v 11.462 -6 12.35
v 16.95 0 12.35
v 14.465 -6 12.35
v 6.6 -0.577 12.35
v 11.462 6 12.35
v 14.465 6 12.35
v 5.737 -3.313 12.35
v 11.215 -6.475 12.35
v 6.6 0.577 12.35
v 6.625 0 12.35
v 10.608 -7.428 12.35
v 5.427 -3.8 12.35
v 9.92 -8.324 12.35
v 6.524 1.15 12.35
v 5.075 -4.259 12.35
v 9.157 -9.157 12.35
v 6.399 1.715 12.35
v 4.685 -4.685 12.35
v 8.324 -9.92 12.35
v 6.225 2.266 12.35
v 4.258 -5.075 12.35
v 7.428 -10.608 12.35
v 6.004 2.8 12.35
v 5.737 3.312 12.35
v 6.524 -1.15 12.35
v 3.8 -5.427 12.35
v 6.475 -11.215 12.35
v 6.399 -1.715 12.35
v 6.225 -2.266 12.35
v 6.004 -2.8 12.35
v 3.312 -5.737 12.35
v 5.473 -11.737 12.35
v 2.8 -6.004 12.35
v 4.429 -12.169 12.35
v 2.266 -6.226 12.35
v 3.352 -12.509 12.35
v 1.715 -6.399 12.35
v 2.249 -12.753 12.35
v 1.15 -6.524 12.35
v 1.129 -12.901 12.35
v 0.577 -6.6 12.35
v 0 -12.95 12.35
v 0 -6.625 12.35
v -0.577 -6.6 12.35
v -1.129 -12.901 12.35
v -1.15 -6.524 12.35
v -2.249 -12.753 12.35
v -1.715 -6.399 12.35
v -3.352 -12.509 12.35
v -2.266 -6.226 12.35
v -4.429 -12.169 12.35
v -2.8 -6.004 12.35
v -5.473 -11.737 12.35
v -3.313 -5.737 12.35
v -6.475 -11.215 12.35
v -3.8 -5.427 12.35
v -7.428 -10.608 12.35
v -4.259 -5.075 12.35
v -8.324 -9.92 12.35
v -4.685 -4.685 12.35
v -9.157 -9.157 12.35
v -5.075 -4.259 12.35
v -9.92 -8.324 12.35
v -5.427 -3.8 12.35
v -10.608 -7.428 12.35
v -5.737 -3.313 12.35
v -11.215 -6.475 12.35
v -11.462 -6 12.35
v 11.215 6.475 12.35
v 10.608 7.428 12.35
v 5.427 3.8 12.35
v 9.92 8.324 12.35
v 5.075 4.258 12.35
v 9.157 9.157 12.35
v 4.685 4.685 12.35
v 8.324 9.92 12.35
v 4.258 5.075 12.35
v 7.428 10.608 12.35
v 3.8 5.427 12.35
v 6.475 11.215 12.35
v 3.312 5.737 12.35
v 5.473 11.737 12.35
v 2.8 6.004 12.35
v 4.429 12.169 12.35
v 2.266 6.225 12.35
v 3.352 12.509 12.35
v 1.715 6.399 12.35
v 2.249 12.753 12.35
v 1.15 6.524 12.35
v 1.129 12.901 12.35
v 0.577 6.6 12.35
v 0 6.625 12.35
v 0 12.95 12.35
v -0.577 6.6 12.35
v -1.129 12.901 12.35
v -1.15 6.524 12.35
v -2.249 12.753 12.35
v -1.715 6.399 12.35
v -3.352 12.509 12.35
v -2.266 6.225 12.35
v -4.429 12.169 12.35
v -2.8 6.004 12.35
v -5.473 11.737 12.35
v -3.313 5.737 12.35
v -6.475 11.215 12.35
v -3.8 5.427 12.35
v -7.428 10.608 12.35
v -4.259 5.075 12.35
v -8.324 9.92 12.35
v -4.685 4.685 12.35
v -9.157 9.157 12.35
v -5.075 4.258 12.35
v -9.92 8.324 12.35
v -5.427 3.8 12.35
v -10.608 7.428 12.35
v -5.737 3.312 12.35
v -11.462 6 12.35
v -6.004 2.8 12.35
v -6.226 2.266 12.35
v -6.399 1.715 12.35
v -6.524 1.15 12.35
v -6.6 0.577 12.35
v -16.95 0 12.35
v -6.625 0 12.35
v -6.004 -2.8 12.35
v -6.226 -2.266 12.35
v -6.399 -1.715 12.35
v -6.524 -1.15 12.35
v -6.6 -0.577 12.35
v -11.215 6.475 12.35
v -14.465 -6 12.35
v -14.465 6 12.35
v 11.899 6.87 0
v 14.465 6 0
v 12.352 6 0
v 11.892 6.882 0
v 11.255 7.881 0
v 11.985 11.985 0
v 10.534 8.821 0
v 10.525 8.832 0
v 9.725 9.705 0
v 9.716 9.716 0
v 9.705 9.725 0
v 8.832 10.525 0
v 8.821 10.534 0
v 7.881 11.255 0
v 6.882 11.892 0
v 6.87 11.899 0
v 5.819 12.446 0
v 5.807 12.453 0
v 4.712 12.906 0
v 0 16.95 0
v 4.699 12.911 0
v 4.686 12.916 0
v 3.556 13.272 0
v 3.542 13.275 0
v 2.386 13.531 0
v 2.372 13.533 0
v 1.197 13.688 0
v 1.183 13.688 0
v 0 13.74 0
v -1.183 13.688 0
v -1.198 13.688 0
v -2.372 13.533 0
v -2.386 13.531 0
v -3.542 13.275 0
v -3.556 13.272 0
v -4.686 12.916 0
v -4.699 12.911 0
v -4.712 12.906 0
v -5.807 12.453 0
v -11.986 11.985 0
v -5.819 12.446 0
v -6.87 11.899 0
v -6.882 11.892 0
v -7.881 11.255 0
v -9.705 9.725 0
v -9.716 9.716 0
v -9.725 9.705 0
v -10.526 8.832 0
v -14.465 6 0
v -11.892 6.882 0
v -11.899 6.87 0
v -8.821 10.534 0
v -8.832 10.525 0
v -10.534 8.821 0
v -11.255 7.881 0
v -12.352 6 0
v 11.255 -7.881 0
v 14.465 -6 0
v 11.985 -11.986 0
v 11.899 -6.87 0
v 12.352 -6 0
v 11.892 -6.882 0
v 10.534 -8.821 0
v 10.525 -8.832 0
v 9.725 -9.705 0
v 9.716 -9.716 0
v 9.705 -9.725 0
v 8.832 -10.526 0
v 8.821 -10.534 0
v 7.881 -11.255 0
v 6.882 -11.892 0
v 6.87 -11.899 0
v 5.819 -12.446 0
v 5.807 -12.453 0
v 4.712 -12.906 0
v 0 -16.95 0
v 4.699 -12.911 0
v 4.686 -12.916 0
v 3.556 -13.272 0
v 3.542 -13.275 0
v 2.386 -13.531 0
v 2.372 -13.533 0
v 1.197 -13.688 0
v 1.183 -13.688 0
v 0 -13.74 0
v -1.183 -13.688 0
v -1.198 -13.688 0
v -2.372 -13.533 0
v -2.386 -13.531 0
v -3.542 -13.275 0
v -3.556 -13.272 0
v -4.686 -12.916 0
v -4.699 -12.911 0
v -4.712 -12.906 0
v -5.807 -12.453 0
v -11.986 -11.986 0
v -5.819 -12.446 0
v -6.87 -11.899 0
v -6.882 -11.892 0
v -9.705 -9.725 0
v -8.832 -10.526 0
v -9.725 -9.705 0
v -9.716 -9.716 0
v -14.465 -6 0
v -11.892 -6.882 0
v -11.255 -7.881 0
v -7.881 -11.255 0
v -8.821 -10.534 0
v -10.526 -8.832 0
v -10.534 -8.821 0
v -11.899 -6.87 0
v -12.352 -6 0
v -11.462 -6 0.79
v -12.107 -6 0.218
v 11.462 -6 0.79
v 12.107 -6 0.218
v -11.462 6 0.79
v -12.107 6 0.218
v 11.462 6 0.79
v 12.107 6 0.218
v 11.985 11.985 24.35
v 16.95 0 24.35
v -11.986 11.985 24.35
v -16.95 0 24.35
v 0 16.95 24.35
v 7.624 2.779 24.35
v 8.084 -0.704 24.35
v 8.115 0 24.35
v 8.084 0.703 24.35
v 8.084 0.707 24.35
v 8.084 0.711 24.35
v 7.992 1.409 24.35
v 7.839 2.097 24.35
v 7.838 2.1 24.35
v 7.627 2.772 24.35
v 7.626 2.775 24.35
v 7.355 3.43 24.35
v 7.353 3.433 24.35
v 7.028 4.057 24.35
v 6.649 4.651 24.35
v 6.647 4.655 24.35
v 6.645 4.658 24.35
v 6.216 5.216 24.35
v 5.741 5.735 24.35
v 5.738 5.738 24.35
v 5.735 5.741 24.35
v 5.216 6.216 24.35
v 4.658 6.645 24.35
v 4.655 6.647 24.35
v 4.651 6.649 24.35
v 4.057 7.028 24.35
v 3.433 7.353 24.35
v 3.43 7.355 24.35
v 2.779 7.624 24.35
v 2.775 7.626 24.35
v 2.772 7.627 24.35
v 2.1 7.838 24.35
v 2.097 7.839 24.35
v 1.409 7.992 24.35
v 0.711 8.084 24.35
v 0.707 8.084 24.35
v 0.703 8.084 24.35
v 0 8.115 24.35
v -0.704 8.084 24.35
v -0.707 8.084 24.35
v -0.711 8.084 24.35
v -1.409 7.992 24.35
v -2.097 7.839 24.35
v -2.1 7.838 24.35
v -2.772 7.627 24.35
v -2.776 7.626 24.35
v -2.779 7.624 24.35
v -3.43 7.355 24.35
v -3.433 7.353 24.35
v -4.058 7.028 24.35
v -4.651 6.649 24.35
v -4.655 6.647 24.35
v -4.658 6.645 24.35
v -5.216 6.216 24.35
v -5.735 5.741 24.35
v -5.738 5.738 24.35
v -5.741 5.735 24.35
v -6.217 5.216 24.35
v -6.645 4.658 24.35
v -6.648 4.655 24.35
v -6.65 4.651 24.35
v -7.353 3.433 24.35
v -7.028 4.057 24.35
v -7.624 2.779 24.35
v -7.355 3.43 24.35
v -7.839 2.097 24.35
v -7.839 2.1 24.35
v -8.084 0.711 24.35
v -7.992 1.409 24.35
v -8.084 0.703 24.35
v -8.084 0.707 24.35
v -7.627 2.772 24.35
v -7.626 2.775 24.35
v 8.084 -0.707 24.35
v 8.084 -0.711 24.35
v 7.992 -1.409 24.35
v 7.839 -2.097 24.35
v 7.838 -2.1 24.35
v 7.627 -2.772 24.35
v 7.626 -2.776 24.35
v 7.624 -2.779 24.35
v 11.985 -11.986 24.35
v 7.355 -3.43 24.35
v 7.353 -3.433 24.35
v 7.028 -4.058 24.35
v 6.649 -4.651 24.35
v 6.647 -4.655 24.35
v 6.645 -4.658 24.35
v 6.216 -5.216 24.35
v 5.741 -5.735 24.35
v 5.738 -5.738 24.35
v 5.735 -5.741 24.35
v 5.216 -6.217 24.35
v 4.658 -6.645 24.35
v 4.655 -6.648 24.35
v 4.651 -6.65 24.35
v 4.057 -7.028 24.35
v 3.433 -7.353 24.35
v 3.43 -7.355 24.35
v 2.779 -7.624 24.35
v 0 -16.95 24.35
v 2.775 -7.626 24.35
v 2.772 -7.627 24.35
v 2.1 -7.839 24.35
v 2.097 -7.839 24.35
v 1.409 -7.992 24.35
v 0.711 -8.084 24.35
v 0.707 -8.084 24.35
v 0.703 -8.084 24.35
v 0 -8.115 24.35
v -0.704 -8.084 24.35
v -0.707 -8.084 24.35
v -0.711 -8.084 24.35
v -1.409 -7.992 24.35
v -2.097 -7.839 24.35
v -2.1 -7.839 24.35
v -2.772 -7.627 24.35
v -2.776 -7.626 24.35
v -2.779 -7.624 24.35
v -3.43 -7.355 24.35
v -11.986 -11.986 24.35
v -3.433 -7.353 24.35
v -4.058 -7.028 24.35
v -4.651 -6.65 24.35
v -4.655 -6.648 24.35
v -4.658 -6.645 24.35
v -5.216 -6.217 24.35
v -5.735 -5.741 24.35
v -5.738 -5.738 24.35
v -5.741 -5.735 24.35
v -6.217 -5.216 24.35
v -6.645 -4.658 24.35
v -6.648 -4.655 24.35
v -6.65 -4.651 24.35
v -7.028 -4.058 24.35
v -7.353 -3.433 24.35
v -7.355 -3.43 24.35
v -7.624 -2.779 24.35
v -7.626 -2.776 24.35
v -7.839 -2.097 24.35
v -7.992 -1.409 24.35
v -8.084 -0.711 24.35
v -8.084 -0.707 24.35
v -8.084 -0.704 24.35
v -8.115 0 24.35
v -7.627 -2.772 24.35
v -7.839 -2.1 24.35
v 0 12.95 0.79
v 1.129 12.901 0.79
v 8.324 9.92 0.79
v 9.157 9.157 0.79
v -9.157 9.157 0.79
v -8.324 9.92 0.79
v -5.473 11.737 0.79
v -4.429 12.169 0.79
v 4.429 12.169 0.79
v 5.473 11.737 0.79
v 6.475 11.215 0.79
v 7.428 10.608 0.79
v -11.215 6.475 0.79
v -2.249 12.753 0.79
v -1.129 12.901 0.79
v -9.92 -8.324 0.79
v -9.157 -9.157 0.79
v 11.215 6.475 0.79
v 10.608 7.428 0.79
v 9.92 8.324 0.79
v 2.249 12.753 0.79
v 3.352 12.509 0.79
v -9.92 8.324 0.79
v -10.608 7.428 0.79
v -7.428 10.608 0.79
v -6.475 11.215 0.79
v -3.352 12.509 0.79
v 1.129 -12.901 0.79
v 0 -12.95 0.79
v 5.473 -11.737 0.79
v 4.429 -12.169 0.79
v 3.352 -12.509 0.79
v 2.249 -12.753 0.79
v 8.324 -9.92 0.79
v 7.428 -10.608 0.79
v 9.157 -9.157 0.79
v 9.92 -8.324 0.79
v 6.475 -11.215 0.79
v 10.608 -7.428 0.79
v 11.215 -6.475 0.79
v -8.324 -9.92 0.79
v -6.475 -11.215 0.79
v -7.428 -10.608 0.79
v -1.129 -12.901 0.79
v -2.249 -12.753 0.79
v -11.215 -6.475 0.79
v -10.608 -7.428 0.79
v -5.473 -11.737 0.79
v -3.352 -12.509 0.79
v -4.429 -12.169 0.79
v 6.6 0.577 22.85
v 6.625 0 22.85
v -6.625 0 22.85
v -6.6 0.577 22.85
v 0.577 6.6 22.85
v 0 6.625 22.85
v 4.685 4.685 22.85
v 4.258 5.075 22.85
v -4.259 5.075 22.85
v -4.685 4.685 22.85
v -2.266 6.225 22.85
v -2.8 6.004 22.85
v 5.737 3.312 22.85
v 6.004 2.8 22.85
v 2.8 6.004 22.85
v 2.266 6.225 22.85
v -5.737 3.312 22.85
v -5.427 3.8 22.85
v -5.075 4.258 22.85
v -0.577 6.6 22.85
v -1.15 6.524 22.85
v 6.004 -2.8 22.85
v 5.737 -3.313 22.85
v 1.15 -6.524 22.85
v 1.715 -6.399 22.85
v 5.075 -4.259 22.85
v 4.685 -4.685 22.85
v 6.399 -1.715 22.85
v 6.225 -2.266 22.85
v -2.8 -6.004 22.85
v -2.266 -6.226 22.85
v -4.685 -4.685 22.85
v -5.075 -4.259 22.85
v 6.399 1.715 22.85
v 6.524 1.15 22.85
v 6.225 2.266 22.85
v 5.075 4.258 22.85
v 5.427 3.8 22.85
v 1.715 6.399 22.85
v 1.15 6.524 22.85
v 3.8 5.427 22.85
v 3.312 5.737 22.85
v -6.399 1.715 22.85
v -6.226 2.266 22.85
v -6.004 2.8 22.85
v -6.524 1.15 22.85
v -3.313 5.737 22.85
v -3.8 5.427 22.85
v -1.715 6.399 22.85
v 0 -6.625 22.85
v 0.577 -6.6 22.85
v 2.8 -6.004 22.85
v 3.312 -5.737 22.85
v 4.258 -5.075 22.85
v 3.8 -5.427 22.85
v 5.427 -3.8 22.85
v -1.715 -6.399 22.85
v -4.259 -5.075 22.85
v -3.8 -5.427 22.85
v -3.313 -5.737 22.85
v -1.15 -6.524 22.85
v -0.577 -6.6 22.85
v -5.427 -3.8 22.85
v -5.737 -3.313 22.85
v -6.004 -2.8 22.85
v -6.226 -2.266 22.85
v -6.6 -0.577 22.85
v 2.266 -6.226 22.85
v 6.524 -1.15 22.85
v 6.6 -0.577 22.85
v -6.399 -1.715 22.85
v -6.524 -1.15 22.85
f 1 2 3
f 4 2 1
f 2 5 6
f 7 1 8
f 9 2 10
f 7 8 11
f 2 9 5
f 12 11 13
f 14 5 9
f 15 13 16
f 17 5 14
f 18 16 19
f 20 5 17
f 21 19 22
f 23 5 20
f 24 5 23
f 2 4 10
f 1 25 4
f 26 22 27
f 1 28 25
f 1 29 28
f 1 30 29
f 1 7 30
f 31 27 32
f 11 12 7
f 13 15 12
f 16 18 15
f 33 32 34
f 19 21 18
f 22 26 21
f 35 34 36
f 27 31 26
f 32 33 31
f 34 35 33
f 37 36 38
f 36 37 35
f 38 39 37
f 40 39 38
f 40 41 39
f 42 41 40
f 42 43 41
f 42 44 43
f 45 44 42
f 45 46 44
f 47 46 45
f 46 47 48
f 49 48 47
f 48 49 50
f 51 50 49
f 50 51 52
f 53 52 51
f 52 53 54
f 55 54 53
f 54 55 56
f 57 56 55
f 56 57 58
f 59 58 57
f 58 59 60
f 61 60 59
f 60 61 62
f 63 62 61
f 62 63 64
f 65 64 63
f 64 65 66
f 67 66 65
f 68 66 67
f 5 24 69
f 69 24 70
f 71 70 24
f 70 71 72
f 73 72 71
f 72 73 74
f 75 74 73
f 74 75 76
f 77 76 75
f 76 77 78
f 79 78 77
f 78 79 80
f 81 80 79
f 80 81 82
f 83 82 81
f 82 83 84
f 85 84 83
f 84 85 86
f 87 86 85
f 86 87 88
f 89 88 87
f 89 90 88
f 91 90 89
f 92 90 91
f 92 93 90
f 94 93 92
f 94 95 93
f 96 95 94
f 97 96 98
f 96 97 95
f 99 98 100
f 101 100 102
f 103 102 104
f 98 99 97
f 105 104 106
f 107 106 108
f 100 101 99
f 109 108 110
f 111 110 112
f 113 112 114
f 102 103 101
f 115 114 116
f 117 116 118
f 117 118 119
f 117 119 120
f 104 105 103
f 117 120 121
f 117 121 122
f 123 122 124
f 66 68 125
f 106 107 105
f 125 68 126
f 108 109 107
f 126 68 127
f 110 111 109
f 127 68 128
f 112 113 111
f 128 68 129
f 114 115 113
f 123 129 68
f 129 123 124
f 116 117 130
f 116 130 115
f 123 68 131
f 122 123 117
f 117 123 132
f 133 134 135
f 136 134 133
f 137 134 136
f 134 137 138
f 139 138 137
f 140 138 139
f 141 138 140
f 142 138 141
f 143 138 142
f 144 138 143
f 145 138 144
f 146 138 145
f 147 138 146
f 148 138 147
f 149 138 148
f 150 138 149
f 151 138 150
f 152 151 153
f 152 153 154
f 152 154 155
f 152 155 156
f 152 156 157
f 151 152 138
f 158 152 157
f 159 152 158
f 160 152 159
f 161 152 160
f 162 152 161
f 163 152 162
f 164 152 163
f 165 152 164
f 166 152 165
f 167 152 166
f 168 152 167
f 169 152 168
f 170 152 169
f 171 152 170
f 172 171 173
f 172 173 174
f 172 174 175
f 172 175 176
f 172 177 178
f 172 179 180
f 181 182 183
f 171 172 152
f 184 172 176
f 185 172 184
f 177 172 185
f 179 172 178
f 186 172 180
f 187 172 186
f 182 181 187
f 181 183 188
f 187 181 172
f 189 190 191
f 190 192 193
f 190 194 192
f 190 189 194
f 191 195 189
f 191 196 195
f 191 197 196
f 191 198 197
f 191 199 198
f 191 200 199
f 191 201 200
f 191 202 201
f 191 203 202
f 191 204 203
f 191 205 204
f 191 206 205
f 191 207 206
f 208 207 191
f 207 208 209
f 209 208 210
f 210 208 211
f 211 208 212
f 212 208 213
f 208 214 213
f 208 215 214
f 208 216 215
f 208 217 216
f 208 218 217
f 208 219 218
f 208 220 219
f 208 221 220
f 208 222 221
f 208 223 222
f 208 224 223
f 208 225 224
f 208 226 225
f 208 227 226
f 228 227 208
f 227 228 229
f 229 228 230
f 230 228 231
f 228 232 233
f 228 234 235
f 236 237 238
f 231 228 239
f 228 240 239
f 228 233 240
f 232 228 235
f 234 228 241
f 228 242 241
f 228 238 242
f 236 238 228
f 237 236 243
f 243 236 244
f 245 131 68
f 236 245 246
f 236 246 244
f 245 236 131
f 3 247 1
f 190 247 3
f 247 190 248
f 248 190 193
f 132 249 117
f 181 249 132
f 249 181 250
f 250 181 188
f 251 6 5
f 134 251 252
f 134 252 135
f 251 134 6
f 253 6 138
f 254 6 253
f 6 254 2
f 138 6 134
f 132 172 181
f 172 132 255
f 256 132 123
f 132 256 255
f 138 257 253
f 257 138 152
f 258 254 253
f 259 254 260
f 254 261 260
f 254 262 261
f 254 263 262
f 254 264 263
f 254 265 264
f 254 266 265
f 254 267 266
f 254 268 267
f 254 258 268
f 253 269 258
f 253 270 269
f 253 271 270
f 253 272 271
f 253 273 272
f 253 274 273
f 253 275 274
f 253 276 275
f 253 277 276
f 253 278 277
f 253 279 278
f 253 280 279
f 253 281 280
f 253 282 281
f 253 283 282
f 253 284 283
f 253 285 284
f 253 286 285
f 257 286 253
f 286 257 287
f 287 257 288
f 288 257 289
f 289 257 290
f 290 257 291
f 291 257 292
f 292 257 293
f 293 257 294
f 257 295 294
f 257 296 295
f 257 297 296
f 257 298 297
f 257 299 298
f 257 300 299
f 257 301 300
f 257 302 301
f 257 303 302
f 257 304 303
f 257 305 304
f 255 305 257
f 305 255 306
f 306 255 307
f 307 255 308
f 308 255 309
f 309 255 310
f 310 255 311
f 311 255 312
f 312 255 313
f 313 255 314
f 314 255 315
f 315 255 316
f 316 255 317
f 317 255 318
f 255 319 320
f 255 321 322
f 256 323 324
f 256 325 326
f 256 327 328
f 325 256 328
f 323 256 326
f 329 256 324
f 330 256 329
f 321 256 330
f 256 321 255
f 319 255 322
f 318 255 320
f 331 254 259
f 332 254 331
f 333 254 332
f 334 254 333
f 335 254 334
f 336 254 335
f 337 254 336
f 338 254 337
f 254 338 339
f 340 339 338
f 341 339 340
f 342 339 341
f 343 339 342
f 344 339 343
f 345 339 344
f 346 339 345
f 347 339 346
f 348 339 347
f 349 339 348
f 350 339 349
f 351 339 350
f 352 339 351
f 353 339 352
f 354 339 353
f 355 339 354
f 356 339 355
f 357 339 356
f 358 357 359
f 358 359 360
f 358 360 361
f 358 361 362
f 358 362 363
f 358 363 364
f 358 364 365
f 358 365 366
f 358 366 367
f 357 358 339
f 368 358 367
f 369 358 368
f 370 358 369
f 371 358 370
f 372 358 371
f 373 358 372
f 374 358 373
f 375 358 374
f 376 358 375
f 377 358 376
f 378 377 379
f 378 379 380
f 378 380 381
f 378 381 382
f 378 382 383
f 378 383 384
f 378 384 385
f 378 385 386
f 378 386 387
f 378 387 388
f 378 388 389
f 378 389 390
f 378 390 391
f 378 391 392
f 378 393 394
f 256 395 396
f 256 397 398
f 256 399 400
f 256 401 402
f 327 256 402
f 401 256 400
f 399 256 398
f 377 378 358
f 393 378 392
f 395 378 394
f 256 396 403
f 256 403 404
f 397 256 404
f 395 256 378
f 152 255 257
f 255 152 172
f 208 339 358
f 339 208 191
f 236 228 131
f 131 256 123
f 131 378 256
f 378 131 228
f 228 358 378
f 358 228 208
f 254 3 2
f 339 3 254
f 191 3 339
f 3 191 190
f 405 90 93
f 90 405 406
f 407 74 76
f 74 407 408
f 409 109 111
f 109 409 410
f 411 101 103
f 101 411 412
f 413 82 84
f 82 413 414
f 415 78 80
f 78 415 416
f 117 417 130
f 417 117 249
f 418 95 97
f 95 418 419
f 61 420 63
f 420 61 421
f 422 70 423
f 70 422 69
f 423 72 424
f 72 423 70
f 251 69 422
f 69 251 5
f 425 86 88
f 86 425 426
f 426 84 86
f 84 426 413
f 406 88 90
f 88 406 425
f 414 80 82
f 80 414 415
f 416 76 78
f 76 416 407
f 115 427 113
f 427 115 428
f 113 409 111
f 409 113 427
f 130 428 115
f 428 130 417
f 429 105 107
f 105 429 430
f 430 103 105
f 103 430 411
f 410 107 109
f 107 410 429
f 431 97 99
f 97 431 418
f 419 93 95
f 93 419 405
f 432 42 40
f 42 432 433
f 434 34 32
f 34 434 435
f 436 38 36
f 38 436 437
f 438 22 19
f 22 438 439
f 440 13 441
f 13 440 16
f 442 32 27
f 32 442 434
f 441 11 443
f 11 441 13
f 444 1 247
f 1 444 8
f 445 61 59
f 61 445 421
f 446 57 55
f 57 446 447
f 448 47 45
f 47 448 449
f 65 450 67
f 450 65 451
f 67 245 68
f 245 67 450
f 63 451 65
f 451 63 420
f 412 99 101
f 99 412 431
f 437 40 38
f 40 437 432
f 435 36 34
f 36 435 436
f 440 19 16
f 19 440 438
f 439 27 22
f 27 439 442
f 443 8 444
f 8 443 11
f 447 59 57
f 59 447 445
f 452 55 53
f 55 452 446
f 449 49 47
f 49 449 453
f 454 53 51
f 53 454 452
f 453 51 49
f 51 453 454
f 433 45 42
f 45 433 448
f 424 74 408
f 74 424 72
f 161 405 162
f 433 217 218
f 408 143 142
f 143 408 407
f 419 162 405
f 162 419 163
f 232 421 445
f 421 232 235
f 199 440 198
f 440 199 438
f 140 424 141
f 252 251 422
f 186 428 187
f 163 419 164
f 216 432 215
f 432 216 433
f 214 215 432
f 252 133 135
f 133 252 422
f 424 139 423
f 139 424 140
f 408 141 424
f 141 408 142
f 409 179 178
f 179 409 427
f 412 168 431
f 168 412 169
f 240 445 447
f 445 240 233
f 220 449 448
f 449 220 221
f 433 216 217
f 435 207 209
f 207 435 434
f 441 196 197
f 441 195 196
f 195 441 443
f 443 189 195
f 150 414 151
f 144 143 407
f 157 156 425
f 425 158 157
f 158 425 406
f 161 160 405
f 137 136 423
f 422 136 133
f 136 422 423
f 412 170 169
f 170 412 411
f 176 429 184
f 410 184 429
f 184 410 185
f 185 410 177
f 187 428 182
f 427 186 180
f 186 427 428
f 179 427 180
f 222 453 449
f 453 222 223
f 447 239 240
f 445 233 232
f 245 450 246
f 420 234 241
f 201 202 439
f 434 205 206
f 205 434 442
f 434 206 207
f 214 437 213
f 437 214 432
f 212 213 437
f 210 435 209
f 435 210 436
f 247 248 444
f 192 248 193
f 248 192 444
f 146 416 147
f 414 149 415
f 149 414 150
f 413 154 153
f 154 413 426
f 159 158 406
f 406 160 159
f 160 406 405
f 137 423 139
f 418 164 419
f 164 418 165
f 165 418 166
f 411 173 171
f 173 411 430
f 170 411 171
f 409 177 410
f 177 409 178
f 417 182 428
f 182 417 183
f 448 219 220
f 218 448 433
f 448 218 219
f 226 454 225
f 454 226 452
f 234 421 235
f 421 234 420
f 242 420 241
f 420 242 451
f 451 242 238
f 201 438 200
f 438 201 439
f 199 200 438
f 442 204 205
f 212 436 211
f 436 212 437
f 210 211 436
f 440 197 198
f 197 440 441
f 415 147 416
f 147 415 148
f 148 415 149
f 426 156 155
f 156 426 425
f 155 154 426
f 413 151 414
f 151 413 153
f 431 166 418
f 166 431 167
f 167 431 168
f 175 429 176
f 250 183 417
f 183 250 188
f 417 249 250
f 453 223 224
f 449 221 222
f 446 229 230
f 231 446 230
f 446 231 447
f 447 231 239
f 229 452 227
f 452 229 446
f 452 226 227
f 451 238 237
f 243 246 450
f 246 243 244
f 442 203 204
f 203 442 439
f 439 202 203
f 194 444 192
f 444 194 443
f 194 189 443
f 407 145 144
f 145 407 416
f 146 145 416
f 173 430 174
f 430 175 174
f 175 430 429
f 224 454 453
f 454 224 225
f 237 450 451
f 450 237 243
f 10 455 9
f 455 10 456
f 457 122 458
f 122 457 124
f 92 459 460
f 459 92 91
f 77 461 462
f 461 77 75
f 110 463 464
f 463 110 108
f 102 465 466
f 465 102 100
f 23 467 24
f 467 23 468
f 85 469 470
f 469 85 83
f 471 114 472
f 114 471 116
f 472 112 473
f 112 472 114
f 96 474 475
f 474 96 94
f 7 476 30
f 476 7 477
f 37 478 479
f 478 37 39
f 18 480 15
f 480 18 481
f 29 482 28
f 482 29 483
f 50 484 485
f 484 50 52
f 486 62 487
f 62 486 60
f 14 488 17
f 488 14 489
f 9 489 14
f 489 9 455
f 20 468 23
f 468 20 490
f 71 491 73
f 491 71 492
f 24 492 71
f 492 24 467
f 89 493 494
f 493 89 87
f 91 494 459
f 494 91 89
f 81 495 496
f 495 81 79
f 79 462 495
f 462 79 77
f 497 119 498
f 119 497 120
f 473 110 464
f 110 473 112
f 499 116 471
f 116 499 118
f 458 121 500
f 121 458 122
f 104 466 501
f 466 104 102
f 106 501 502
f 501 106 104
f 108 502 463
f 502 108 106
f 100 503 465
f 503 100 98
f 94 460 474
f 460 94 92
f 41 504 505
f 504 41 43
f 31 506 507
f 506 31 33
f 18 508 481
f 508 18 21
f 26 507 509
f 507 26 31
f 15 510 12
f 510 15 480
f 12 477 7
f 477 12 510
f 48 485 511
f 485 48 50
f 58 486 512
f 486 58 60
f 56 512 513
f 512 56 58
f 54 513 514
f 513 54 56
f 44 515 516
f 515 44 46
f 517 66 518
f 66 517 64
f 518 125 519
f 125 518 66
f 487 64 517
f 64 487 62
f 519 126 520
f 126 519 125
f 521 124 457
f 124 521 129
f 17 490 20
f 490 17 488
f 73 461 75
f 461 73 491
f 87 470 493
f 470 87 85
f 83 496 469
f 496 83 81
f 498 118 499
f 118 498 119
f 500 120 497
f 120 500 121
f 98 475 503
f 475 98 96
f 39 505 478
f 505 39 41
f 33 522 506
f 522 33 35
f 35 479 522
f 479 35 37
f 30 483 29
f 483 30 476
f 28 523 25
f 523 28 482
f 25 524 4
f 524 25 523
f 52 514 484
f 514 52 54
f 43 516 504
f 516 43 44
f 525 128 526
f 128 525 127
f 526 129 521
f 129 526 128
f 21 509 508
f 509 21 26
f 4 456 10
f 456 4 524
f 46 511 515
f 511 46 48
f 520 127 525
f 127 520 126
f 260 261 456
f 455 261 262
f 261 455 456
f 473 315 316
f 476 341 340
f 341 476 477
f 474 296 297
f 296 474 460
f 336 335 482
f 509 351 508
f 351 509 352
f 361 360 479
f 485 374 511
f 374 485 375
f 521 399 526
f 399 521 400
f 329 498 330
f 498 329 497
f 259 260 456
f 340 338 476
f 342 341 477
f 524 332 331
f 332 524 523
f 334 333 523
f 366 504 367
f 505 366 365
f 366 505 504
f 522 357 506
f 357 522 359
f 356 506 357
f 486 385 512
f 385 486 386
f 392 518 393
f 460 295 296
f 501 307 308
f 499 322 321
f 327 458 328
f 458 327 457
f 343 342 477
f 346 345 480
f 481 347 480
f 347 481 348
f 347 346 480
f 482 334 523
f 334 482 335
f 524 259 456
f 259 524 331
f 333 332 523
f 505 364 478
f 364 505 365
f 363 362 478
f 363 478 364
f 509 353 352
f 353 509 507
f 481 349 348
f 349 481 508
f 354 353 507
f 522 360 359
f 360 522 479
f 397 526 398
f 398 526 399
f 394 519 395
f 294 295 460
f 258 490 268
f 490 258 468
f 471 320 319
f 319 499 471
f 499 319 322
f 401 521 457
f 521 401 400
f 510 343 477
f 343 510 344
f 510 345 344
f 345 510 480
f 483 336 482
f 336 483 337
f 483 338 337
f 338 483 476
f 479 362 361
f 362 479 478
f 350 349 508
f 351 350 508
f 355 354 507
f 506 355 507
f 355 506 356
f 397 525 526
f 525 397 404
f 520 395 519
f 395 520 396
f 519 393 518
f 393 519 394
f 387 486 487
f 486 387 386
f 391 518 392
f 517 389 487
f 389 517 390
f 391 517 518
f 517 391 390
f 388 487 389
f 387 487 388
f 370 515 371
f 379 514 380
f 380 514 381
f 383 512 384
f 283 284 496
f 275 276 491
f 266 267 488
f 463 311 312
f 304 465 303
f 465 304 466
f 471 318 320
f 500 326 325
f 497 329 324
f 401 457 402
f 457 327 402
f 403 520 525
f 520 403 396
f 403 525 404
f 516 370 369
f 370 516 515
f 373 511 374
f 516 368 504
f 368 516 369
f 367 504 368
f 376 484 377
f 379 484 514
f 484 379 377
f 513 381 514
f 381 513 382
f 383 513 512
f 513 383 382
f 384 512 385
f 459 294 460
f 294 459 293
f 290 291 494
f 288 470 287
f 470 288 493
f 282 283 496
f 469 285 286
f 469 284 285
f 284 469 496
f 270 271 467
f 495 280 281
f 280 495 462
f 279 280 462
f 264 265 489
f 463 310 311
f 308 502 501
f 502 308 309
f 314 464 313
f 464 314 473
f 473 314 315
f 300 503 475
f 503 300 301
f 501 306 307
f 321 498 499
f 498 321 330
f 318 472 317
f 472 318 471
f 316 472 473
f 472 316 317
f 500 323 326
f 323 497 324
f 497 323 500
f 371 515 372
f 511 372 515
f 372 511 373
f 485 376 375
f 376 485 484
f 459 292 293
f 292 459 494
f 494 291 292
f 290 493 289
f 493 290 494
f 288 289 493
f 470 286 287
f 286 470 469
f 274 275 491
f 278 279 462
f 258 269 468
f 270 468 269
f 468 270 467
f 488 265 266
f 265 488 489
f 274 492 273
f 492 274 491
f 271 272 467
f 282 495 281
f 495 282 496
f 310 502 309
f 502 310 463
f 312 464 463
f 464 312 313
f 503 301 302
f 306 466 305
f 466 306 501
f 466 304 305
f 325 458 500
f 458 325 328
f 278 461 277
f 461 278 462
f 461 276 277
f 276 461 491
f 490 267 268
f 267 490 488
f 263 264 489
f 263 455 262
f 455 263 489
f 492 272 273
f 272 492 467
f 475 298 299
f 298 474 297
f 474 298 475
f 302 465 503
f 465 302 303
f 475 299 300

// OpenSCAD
// Bottle Cap Centering Drill Jig (For 22-410 / 25.6 mm OD Caps)
// Units: Millimeters (mm)
// Designed to hold a 25.6 mm OD x 12.35 mm tall bottle cap firmly centered for drilling a 13.0 mm (1/2") hole

$fn = 72;

// ==========================================
// User-Editable Parameters
// ==========================================

cap_od = 25.60;              // Outer diameter of the bottle cap
cap_height = 12.35;          // Total height of the bottle cap

target_drill_diameter = 13.0; // Desired through-hole diameter (e.g. 13.0 mm or 1/2" / 12.7 mm)

drill_guide_clearance = 0.25; // Radial/diametral clearance for drill bit rotation
cap_pocket_clearance = 0.30;  // Slip-fit clearance for inserting/removing cap

jig_wall_thickness = 4.0;    // Sturdy outer wall thickness
guide_bushing_height = 12.0; // Tall guide bushing to prevent drill bit tilt/wandering

// ==========================================
// Calculated Dimensions
// ==========================================

pocket_id = cap_od + cap_pocket_clearance; // ~25.90 mm
guide_id = target_drill_diameter + drill_guide_clearance; // ~13.25 mm

jig_od = pocket_id + 2 * jig_wall_thickness; // ~33.90 mm
total_jig_height = cap_height + guide_bushing_height; // ~24.35 mm

// Module: Drill Jig
module drill_jig() {
  difference() {
    // 1. Main Octagonal / Ergonomic Clampable Body
    // Octagonal outer profile allows easy hand gripping or solid clamping in a bench vise
    cylinder(d = jig_od, h = total_jig_height, $fn = 8);

    // 2. Cap Socket Pocket (from bottom up)
    // The cap inserts from the bottom until its top face seats flat against the guide stop ceiling
    translate([0, 0, -0.1])
      cylinder(d = pocket_id, h = cap_height + 0.1);

    // Cap insertion bottom lead-in chamfer
    translate([0, 0, -0.01])
      cylinder(r1 = (pocket_id / 2) + 0.8, r2 = pocket_id / 2, h = 0.8);

    // 3. Precision Drill Guide Bushing Hole (through the upper guide ceiling)
    translate([0, 0, cap_height - 0.1])
      cylinder(d = guide_id, h = guide_bushing_height + 0.5);

    // Drill bit entry funnel / chamfer at the top
    translate([0, 0, total_jig_height - 1.5])
      cylinder(r1 = guide_id / 2, r2 = (guide_id / 2) + 1.5, h = 1.51);

    // 4. Dual Side Ejection & Chip Windows
    // Allows chip evacuation while drilling and lets you push the cap out easily with your finger
    for (ang = [0, 180]) {
      rotate([0, 0, ang])
        translate([0, 0, cap_height / 2])
          cube([jig_od + 2, 12, cap_height], center = true);
    }
  }
}

// Render Drill Jig
drill_jig();
